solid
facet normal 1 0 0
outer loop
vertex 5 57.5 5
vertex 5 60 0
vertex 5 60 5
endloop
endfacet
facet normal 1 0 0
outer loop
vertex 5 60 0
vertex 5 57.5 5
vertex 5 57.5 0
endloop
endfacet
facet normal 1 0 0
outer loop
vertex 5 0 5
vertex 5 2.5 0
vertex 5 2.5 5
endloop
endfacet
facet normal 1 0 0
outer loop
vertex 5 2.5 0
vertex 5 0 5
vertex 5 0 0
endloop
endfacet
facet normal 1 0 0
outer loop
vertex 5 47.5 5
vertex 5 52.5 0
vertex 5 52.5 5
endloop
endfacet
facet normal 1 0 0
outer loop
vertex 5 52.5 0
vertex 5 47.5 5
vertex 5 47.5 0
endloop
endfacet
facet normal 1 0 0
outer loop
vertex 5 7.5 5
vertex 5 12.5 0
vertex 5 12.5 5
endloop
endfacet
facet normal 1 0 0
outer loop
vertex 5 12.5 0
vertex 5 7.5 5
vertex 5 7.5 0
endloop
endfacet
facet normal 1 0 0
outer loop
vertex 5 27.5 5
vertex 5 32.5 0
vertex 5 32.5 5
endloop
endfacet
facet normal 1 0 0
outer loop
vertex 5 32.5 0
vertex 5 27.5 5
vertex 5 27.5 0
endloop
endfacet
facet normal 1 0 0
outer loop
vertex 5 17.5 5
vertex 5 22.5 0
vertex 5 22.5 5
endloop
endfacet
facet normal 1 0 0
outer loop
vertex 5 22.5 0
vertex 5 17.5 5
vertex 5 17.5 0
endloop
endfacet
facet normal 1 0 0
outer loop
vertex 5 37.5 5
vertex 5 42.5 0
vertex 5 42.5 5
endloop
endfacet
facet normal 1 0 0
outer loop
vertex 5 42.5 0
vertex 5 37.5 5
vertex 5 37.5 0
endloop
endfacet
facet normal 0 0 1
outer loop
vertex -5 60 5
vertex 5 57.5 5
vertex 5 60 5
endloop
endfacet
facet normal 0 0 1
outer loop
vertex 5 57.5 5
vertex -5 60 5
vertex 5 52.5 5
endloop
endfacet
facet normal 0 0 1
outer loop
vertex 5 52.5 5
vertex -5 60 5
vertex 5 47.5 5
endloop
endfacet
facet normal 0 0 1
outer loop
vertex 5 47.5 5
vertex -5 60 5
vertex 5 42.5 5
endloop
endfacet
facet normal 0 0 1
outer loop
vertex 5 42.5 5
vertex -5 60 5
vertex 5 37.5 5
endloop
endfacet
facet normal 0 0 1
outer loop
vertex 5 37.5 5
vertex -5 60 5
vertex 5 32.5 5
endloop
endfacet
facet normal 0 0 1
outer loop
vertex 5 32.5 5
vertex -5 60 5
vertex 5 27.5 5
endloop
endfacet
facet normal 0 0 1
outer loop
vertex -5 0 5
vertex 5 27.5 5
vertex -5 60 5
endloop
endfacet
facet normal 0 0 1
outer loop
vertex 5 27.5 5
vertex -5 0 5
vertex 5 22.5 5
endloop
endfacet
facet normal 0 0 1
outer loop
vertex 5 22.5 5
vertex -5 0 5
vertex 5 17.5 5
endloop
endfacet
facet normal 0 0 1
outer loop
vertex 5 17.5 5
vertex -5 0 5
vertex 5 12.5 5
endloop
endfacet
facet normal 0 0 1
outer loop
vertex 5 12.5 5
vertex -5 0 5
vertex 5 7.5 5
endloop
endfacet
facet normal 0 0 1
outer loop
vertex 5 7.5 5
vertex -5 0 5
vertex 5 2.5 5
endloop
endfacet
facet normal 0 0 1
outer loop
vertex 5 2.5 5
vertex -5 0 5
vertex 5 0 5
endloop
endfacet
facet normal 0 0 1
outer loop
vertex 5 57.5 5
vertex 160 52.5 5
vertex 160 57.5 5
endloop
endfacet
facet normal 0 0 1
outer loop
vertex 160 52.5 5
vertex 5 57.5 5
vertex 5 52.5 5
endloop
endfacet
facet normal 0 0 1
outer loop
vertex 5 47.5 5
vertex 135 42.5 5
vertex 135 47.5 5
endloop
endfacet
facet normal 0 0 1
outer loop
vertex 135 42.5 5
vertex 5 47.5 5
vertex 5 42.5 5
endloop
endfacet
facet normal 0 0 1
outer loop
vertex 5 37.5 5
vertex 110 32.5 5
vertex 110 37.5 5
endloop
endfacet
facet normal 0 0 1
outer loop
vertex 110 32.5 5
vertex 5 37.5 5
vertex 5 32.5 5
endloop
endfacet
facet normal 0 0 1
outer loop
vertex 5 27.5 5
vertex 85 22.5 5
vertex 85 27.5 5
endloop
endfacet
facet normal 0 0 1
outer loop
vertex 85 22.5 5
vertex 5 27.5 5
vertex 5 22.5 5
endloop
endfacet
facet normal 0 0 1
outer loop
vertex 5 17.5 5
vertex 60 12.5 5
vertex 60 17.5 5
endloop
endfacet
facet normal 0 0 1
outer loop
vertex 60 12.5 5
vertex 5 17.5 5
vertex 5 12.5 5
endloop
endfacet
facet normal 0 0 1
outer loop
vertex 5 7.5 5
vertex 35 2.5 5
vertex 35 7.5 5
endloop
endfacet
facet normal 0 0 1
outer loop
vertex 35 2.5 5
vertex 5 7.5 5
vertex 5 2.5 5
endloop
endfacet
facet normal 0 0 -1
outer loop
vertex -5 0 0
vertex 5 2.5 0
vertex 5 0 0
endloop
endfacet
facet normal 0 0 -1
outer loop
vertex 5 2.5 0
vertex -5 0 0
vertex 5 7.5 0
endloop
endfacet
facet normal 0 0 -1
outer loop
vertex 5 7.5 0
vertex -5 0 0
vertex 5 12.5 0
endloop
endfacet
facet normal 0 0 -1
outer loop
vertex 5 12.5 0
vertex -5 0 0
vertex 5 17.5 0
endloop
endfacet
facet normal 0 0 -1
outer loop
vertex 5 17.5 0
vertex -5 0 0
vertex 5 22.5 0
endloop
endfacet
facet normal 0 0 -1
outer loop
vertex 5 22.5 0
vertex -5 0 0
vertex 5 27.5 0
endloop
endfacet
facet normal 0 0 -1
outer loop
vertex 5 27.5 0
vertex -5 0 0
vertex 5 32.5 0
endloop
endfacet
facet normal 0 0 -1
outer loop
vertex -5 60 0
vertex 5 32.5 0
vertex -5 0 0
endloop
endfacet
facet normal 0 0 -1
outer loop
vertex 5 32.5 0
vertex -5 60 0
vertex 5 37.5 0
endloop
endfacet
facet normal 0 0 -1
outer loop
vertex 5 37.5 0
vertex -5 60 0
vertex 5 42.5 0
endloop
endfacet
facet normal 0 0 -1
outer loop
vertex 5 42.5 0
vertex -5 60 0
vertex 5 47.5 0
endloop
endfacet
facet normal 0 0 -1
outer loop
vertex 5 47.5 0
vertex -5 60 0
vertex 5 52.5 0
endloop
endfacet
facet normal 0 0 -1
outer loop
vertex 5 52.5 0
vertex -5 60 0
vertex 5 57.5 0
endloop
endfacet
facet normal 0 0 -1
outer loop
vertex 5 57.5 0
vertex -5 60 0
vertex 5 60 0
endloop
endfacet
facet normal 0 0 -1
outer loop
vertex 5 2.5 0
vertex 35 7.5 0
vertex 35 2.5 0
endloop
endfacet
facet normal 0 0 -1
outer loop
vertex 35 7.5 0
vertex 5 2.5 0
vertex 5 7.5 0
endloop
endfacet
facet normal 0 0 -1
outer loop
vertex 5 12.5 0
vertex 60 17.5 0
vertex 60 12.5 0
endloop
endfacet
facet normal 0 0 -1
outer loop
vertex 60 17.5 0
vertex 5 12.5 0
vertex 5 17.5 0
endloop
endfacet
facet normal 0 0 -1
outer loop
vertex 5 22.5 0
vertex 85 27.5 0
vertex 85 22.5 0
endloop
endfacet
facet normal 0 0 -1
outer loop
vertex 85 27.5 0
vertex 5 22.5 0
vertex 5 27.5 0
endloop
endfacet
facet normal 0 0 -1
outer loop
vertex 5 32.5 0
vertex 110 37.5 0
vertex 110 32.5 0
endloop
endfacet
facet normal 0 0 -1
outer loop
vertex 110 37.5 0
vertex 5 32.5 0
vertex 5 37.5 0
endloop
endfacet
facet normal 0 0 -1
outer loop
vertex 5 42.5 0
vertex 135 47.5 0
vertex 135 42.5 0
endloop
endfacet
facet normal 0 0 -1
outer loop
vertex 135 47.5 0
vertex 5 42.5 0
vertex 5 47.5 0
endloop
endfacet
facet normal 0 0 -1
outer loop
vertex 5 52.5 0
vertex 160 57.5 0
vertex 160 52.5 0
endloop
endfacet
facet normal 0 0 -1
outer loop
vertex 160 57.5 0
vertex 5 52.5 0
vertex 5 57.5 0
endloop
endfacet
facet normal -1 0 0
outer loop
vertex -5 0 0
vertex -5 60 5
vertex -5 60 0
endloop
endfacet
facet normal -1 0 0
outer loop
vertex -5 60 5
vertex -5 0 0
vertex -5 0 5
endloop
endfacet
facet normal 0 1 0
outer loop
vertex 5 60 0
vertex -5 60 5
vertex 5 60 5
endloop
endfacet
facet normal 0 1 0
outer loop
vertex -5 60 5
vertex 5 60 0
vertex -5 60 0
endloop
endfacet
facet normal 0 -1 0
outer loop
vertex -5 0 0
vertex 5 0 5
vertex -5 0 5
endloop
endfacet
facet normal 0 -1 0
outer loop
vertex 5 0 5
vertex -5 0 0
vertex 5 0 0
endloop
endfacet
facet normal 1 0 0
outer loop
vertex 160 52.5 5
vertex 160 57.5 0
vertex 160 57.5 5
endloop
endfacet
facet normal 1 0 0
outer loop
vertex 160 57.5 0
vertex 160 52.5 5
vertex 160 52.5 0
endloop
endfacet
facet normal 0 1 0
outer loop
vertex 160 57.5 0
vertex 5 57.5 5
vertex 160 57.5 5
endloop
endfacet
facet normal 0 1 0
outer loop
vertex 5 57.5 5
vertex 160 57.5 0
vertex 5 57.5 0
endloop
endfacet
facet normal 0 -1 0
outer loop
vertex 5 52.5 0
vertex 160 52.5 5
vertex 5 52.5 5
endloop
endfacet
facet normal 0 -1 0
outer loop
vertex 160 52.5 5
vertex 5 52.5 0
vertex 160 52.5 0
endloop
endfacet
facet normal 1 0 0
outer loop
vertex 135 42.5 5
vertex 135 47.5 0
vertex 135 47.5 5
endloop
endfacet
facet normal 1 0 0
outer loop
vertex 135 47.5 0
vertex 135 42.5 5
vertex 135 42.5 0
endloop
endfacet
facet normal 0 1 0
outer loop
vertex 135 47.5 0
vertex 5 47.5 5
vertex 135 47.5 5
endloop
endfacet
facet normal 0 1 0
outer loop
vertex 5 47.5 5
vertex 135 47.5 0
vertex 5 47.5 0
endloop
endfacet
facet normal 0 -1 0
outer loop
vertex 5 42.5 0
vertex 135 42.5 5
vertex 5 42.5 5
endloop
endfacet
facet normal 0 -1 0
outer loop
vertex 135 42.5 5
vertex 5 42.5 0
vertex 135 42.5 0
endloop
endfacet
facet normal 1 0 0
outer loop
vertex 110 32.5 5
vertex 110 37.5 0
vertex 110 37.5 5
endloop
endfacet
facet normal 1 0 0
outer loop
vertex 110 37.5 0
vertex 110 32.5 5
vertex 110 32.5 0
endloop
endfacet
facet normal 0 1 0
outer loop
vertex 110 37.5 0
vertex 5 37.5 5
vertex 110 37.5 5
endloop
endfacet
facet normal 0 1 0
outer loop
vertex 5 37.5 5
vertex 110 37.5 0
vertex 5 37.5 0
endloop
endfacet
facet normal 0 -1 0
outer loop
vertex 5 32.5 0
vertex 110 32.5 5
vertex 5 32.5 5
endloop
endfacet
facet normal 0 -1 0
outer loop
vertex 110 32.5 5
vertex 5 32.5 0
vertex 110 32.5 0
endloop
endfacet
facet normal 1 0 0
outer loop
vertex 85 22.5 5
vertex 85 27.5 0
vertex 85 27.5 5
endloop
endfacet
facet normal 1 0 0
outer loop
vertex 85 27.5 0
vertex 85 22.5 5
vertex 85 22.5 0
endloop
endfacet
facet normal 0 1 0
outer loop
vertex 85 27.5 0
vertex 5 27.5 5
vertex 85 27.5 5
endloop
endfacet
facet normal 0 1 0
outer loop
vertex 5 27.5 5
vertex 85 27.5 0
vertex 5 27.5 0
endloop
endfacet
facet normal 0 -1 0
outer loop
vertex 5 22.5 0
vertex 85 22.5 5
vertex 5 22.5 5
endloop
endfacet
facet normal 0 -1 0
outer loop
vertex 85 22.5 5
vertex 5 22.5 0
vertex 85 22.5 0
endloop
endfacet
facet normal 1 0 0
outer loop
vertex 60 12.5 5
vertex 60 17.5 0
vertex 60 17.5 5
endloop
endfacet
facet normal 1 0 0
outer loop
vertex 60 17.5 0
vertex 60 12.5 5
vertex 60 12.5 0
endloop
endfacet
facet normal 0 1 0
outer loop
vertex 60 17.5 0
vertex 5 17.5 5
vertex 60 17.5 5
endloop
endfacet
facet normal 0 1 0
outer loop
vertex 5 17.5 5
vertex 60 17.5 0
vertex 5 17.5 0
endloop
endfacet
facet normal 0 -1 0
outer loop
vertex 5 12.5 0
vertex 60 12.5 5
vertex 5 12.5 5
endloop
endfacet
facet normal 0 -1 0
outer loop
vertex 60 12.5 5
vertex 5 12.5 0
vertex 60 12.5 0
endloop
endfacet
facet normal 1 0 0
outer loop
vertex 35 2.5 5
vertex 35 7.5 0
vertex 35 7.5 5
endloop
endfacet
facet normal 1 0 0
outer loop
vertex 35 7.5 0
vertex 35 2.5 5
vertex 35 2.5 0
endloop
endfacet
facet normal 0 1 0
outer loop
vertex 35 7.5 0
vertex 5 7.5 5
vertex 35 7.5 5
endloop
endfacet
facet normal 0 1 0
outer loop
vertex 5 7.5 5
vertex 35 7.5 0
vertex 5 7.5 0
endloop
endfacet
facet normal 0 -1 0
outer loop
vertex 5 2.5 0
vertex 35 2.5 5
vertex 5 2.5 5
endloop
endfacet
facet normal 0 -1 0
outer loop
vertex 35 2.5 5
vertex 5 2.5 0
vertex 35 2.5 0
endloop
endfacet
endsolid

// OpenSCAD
// end cut-out for stem extension removal
translate([-5, 0, 0]) {
    cube([10, 60, 5]);
}
// indicator stem extensions
translate([0, 52.5, 0]) {
    cube([160, 5, 5]);
}
translate([0, 42.5, 0]) {
    cube([135, 5, 5]);
}
translate([0, 32.5, 0]) {
    cube([110, 5, 5]);
}
translate([0, 22.5, 0]) {
    cube([85, 5, 5]);
}
translate([0, 12.5, 0]) {
    cube([60, 5, 5]);
}
translate([0, 2.5, 0]) {
    cube([35, 5, 5]);
}
